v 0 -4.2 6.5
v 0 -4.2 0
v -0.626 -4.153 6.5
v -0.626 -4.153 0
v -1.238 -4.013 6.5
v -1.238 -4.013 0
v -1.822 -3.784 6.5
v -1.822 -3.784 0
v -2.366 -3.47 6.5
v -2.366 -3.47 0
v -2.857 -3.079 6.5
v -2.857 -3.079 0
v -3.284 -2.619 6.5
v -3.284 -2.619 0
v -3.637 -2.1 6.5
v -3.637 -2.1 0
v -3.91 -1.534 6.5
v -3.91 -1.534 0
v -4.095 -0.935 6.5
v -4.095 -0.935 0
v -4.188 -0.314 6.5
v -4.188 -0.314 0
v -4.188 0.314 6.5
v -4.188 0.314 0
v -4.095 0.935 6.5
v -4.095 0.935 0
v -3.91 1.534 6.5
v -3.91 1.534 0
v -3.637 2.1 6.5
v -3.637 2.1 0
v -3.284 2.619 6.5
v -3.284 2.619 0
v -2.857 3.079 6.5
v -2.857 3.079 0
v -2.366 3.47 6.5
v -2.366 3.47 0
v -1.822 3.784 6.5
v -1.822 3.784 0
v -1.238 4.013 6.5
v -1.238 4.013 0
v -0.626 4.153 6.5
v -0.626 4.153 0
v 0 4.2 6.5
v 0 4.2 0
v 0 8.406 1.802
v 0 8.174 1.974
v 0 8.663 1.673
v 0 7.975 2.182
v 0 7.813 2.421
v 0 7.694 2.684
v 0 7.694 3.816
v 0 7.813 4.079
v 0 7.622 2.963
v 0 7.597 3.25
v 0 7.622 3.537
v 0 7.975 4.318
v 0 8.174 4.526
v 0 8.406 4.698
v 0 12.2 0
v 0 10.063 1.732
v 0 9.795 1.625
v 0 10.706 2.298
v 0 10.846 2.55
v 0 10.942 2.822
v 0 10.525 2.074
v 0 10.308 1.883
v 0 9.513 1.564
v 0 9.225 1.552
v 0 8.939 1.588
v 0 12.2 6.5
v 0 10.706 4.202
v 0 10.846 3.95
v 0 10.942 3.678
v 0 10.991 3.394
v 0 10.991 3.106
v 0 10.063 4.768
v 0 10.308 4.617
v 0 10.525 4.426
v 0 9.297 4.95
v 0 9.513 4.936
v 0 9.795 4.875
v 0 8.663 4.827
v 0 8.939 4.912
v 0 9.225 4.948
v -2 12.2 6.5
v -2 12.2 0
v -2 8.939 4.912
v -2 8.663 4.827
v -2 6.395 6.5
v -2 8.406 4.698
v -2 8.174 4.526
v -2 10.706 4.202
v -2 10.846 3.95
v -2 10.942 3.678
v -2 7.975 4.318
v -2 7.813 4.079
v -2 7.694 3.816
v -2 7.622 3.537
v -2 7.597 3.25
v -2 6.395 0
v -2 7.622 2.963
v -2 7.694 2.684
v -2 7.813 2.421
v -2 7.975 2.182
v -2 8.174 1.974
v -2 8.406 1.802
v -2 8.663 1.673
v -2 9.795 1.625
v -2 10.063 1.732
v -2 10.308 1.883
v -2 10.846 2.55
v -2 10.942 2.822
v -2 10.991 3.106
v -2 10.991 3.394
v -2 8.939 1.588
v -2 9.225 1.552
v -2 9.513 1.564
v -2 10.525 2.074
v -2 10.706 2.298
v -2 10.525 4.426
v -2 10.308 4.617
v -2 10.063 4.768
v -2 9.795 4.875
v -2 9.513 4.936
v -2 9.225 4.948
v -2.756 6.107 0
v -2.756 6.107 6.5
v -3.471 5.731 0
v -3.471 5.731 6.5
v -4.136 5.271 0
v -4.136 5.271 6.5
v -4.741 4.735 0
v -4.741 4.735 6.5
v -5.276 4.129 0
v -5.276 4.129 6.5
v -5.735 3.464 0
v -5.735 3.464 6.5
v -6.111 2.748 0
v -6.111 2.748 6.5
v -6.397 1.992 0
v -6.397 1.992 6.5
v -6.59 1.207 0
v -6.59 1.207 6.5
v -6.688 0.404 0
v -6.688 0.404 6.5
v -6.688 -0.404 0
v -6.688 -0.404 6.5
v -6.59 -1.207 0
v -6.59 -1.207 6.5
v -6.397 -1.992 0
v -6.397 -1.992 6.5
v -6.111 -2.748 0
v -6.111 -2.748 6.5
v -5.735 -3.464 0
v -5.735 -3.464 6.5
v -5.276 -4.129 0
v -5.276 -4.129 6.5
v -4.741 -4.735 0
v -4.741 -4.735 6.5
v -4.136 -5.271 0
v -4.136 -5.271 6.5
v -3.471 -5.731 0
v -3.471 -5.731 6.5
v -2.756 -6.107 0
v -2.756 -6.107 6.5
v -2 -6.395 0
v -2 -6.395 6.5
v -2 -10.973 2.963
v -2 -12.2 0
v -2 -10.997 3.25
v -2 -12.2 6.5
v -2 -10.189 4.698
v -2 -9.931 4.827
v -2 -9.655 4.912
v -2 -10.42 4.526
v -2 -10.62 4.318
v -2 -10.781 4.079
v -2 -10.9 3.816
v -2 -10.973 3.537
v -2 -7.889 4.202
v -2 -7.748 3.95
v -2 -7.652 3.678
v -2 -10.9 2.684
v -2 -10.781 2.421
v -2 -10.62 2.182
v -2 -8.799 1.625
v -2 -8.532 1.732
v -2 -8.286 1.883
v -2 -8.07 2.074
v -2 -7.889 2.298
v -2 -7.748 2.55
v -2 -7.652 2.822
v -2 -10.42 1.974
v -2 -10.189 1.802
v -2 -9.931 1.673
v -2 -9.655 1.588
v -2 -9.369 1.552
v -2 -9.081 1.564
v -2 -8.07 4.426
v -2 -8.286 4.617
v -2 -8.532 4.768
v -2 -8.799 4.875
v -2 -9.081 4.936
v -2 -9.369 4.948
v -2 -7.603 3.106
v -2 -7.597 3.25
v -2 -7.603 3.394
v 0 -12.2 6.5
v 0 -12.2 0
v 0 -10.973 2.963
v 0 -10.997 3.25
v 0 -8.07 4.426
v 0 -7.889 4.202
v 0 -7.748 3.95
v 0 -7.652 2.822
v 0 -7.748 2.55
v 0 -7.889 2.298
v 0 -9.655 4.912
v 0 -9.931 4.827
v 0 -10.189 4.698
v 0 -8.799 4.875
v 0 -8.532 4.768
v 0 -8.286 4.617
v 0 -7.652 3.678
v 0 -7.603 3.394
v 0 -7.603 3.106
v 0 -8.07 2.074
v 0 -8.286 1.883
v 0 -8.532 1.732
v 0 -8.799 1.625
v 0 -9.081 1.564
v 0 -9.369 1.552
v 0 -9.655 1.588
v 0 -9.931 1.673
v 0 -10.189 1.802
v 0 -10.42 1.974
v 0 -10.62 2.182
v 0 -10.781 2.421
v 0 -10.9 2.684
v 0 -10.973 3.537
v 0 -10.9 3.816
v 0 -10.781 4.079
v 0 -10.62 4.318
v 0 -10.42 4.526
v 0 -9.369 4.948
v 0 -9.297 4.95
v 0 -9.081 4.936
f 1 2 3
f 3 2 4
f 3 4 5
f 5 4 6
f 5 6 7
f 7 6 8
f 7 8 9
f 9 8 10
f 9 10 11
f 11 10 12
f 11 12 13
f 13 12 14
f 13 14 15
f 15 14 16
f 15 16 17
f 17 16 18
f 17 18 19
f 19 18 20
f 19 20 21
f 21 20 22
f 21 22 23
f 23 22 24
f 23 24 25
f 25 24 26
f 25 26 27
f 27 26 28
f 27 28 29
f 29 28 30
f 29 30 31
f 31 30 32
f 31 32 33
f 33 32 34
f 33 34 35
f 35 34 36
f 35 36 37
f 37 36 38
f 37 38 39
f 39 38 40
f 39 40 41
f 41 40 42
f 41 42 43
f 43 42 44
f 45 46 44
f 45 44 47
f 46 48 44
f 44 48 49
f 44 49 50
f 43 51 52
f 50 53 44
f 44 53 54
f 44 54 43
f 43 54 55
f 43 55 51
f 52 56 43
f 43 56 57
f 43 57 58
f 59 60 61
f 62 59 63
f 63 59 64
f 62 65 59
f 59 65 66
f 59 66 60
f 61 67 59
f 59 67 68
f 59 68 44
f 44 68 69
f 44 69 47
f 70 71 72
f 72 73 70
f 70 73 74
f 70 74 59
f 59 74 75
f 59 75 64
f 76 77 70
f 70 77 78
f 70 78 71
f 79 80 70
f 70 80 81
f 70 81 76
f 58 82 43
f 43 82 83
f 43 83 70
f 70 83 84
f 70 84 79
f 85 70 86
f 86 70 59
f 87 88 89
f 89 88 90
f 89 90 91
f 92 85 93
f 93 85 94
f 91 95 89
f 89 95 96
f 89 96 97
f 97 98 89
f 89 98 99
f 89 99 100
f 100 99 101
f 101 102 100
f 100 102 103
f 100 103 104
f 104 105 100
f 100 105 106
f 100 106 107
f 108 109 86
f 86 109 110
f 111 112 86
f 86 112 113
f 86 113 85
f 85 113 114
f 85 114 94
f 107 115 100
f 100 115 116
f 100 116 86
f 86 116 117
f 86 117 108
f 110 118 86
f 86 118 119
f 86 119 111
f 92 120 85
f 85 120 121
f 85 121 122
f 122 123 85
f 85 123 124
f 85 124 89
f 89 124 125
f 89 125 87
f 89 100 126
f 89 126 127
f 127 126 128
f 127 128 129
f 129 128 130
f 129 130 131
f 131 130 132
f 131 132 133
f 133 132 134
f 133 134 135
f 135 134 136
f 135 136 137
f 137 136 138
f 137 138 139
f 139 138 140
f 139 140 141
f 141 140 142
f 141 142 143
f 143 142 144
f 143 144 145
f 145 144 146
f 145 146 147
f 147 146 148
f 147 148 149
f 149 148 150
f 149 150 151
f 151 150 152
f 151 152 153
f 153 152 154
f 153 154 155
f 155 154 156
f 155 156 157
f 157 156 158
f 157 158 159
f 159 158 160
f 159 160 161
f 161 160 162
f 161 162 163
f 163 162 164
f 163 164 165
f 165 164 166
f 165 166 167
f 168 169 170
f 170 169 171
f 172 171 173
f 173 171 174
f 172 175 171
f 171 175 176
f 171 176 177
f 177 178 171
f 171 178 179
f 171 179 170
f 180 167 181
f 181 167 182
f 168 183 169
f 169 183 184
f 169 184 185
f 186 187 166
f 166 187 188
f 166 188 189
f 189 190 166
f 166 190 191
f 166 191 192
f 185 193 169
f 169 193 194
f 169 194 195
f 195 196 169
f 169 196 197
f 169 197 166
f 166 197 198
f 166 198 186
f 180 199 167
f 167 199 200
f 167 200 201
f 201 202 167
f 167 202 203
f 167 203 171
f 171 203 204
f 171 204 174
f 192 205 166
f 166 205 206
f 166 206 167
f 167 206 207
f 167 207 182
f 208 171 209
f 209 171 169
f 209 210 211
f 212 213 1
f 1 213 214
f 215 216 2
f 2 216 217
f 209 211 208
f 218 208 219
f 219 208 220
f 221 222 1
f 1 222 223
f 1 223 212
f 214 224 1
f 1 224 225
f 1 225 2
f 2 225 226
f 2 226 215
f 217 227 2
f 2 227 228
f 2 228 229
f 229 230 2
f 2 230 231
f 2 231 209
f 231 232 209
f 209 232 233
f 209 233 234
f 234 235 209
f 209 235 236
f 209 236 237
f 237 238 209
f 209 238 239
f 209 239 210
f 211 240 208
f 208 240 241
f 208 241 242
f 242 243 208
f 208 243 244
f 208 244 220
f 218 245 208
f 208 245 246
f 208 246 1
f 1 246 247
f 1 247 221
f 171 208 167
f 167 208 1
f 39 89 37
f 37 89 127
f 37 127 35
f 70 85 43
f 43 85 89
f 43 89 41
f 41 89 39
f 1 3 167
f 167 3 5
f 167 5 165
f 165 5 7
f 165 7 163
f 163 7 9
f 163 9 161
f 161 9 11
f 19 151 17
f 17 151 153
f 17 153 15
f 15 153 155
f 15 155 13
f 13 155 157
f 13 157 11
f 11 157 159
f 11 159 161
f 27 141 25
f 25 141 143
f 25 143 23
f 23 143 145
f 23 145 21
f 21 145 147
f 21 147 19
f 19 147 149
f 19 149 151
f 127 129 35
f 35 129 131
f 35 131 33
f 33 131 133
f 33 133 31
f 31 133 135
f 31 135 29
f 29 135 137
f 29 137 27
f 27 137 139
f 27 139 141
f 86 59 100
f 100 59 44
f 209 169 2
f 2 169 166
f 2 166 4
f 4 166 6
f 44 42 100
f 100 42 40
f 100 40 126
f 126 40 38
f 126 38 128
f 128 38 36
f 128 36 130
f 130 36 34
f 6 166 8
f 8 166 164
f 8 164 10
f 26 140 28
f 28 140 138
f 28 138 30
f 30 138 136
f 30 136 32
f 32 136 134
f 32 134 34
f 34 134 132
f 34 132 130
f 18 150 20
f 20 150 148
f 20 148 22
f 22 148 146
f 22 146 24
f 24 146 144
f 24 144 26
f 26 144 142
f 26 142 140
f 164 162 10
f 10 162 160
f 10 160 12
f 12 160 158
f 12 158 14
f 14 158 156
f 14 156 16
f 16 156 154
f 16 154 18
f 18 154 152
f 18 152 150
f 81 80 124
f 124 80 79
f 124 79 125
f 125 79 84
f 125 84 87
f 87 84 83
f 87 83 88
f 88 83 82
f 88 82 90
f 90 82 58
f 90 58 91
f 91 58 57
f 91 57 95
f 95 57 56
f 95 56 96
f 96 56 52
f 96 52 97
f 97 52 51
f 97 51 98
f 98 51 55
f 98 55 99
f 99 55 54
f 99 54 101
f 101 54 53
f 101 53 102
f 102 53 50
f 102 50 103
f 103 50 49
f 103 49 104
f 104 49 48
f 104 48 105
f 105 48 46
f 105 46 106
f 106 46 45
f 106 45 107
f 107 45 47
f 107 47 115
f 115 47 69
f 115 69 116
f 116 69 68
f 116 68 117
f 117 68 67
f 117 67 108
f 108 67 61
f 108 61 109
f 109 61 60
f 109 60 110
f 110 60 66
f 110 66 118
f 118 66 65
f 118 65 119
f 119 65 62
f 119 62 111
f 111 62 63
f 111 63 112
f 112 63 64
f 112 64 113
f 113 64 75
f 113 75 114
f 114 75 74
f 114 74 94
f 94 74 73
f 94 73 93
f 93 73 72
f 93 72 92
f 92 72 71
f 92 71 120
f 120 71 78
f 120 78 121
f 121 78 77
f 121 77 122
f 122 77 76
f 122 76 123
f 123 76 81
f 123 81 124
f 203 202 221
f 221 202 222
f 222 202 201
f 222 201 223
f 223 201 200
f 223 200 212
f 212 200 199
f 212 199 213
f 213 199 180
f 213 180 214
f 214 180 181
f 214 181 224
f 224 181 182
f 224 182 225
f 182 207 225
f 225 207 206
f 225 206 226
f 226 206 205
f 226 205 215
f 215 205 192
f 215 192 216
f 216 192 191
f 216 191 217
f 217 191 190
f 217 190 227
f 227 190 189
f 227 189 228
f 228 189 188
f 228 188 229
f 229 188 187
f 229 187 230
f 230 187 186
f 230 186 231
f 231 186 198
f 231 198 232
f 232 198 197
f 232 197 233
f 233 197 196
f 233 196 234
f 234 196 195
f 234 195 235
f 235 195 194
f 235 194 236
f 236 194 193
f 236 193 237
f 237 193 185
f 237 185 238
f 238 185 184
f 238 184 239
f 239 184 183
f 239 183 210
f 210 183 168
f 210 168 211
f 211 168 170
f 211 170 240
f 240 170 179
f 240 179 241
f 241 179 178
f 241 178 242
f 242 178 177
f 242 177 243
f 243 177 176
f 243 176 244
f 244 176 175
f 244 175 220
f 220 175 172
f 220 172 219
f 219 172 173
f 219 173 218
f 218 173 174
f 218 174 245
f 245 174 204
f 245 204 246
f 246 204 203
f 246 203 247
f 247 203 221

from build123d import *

# Parameters (mm, degrees)
ESTRUSIONE_ESTRUSIONE1_DEPTH = 6.5
SCHIZZO2_R                   = 1.7
TAGLIO_ESTRUSIONE1_DEPTH     = 6.5


with BuildPart() as part:
    # Schizzo1 → Estrusione-Estrusione1 (new body)
    with BuildSketch(Plane.XY):
        with BuildLine():
            Line((0, 4.2), (0, 12.2))
            Line((0, 12.2), (-2, 12.2))
            Line((-2, 12.2), (-2, 6.394528911))
            ThreePointArc((-2, 6.394528911), (-6.7, 0), (-2, -6.394528911))
            Line((-2, -6.394528911), (-2, -12.2))
            Line((-2, -12.2), (0, -12.2))
            Line((0, -12.2), (0, -4.2))
            ThreePointArc((0, -4.2), (-4.2, 0), (0, 4.2))
        make_face()
    extrude(amount=ESTRUSIONE_ESTRUSIONE1_DEPTH)

    # Schizzo2 → Taglio-Estrusione1 (cut)
    with BuildSketch(Plane.ZY.offset(2)):
        with Locations(Location((3.25, 9.297264456, 0), (0, 0, 270))):
            Circle(SCHIZZO2_R)
    taglio_estrusione1 = extrude(amount=-TAGLIO_ESTRUSIONE1_DEPTH, mode=Mode.SUBTRACT)

    # Specchia1: Taglio-Estrusione1 across plane
    add(taglio_estrusione1.mirror(Plane.ZX), mode=Mode.SUBTRACT)


solid = part.part
